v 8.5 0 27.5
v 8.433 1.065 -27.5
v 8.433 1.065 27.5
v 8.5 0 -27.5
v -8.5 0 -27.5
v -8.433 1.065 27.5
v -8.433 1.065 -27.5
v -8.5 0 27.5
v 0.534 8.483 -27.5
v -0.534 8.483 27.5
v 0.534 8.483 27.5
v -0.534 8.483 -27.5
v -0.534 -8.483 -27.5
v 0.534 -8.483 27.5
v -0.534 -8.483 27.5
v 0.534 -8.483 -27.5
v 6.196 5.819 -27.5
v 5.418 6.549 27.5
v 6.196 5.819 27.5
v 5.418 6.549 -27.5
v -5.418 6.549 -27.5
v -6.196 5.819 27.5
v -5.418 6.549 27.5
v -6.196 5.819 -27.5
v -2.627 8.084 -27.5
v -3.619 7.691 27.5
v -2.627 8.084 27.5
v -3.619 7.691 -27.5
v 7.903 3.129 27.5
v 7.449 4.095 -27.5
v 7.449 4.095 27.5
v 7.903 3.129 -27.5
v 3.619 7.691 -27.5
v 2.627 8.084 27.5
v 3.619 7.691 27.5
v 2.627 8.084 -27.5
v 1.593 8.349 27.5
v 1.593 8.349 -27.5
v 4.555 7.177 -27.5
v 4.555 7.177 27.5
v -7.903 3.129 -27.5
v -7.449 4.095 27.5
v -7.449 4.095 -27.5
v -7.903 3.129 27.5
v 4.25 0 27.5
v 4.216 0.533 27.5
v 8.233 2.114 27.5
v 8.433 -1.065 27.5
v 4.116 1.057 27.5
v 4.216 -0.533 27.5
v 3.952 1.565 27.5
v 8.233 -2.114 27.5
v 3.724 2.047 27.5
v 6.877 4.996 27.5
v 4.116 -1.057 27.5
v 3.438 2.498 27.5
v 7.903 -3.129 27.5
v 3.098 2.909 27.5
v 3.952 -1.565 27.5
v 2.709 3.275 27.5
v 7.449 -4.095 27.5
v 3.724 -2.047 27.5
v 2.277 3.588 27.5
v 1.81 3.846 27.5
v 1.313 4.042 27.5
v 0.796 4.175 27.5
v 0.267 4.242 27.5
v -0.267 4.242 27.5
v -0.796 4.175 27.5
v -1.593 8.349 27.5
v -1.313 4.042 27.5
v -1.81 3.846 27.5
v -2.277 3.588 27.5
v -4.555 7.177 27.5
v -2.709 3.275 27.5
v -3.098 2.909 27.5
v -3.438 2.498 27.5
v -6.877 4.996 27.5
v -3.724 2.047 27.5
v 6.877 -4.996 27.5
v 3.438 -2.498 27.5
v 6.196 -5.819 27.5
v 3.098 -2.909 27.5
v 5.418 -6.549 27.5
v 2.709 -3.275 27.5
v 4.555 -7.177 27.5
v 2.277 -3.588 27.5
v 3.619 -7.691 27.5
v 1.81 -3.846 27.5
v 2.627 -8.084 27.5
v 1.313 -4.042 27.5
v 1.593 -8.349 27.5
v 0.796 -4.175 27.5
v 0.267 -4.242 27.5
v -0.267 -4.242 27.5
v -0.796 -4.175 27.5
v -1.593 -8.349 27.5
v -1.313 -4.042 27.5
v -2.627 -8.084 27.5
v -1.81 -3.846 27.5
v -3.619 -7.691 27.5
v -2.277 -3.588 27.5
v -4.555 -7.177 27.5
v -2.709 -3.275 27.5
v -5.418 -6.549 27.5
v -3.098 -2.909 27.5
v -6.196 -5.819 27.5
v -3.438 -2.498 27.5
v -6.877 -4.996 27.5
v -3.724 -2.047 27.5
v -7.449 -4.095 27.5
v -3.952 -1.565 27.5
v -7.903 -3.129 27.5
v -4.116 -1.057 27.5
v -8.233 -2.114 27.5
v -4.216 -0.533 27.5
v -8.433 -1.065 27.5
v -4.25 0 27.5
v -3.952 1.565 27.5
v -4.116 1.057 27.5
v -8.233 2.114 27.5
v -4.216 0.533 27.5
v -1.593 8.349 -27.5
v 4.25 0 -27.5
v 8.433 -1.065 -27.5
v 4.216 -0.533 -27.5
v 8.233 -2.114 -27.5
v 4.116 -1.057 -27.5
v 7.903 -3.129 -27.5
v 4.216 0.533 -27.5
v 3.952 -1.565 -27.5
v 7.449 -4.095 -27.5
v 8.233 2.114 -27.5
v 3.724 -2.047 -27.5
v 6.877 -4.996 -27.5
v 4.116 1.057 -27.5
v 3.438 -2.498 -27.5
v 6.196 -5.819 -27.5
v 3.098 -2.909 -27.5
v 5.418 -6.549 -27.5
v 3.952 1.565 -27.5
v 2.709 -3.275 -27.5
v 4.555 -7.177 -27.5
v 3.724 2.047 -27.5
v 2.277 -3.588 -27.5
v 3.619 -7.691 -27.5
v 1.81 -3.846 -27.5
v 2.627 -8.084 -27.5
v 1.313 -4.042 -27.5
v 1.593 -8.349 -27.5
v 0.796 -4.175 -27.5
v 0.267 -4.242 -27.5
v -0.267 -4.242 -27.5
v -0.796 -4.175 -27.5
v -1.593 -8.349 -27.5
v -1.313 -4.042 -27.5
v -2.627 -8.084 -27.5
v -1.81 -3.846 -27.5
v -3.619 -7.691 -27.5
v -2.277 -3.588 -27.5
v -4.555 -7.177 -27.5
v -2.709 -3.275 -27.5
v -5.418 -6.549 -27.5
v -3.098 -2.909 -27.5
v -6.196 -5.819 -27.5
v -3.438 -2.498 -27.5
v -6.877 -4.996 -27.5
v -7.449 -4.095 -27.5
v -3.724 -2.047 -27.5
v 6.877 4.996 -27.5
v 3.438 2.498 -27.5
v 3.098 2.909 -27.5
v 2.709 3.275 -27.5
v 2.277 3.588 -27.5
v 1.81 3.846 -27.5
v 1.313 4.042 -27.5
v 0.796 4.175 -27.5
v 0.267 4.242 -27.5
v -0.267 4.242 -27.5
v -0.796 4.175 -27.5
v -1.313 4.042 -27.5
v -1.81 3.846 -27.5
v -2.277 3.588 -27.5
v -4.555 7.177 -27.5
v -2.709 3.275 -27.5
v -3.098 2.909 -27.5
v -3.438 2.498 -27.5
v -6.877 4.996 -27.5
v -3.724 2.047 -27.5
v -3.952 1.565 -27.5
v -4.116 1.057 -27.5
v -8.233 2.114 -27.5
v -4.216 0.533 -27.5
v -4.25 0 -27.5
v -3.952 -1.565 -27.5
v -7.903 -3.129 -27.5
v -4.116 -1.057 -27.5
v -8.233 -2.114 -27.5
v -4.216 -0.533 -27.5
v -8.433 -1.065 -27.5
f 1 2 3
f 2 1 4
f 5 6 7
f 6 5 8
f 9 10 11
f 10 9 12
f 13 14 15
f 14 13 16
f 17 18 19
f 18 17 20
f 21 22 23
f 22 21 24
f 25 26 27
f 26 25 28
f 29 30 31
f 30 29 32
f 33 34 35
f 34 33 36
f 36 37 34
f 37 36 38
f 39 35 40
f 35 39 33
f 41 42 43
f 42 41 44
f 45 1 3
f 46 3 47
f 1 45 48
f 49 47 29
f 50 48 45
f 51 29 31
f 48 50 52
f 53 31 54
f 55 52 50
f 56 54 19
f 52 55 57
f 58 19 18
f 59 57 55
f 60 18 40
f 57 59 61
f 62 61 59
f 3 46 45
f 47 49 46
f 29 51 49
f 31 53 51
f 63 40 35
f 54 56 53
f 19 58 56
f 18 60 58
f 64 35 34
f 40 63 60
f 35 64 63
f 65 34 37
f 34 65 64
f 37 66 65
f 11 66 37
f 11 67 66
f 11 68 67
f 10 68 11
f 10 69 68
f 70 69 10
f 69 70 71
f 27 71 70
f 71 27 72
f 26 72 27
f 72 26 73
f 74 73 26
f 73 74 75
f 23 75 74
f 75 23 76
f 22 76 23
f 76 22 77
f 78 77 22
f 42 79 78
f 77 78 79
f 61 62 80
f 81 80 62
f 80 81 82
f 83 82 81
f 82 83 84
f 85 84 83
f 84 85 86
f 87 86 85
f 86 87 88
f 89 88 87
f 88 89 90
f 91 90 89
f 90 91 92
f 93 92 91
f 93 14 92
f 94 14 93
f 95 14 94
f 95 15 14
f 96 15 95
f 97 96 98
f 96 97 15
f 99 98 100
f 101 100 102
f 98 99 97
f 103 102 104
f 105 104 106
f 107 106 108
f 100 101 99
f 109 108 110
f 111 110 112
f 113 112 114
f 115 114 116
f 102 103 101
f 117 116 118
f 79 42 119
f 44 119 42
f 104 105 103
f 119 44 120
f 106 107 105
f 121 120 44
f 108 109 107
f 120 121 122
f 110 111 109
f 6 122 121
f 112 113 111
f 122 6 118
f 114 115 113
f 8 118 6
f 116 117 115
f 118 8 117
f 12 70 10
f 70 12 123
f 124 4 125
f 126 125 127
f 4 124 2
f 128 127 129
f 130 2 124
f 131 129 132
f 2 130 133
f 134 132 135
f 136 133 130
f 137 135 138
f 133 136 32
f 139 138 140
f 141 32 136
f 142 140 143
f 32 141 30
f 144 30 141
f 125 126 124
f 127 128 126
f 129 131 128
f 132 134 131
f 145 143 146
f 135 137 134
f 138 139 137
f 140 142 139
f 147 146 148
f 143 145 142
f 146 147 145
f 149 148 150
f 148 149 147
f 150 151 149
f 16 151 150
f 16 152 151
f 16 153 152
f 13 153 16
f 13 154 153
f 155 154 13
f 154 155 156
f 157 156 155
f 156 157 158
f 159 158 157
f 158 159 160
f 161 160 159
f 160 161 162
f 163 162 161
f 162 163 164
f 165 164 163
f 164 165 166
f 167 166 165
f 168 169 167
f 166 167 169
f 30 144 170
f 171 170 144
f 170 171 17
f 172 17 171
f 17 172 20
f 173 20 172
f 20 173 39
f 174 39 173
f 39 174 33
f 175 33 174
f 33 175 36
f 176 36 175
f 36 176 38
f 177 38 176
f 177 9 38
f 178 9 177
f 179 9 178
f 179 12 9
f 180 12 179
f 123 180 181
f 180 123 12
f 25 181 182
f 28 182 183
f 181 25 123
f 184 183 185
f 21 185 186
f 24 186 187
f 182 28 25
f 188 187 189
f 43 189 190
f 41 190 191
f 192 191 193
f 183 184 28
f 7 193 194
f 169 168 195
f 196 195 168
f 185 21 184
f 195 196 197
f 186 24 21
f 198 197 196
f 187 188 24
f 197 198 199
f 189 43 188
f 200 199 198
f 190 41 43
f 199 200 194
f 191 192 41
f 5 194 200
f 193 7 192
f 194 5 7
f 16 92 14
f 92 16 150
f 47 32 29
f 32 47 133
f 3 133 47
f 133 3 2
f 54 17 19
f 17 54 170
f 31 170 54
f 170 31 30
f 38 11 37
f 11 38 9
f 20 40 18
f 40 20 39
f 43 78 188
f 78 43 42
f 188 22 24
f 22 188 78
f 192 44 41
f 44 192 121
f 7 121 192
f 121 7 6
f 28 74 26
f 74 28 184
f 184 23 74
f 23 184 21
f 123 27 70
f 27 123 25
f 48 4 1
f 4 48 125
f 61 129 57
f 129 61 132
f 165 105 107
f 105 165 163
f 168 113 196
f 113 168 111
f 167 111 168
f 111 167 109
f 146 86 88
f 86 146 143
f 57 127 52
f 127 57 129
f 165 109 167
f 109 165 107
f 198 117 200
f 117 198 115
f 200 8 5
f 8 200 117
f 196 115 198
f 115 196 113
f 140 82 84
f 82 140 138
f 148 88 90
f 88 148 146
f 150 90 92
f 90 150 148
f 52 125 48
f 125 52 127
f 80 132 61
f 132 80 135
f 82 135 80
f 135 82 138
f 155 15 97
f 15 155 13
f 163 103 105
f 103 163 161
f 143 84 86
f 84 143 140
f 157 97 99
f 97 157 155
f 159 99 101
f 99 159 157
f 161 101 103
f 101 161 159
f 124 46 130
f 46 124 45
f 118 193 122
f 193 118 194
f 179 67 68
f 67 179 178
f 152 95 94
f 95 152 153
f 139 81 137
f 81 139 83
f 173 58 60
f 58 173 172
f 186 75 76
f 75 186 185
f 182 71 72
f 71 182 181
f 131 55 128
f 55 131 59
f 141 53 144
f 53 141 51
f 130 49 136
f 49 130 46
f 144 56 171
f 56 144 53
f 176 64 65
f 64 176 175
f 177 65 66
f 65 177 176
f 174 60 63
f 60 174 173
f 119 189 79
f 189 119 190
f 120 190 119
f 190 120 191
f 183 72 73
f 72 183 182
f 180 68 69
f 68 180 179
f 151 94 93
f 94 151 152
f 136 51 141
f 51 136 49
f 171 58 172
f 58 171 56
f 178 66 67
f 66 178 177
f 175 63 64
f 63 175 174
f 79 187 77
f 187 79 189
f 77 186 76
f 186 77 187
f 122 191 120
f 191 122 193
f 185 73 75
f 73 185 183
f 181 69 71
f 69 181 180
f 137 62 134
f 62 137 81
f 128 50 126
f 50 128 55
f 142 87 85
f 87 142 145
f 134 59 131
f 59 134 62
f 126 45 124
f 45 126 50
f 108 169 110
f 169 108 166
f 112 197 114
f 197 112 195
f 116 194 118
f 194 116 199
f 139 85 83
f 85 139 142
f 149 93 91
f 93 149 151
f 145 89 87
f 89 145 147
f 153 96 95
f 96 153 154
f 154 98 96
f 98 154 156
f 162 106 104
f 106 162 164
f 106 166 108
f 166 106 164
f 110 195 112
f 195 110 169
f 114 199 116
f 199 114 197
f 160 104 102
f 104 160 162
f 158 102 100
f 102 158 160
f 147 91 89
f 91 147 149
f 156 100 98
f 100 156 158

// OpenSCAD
$fn = 50;


difference() {
	union() {
		translate(v = [0, 0, -27.5000000000]) {
			cylinder(h = 55, r = 8.5000000000);
		}
	}
	union() {
		translate(v = [0, 0, -100.0000000000]) {
			cylinder(h = 200, r = 4.2500000000);
		}
	}
}
